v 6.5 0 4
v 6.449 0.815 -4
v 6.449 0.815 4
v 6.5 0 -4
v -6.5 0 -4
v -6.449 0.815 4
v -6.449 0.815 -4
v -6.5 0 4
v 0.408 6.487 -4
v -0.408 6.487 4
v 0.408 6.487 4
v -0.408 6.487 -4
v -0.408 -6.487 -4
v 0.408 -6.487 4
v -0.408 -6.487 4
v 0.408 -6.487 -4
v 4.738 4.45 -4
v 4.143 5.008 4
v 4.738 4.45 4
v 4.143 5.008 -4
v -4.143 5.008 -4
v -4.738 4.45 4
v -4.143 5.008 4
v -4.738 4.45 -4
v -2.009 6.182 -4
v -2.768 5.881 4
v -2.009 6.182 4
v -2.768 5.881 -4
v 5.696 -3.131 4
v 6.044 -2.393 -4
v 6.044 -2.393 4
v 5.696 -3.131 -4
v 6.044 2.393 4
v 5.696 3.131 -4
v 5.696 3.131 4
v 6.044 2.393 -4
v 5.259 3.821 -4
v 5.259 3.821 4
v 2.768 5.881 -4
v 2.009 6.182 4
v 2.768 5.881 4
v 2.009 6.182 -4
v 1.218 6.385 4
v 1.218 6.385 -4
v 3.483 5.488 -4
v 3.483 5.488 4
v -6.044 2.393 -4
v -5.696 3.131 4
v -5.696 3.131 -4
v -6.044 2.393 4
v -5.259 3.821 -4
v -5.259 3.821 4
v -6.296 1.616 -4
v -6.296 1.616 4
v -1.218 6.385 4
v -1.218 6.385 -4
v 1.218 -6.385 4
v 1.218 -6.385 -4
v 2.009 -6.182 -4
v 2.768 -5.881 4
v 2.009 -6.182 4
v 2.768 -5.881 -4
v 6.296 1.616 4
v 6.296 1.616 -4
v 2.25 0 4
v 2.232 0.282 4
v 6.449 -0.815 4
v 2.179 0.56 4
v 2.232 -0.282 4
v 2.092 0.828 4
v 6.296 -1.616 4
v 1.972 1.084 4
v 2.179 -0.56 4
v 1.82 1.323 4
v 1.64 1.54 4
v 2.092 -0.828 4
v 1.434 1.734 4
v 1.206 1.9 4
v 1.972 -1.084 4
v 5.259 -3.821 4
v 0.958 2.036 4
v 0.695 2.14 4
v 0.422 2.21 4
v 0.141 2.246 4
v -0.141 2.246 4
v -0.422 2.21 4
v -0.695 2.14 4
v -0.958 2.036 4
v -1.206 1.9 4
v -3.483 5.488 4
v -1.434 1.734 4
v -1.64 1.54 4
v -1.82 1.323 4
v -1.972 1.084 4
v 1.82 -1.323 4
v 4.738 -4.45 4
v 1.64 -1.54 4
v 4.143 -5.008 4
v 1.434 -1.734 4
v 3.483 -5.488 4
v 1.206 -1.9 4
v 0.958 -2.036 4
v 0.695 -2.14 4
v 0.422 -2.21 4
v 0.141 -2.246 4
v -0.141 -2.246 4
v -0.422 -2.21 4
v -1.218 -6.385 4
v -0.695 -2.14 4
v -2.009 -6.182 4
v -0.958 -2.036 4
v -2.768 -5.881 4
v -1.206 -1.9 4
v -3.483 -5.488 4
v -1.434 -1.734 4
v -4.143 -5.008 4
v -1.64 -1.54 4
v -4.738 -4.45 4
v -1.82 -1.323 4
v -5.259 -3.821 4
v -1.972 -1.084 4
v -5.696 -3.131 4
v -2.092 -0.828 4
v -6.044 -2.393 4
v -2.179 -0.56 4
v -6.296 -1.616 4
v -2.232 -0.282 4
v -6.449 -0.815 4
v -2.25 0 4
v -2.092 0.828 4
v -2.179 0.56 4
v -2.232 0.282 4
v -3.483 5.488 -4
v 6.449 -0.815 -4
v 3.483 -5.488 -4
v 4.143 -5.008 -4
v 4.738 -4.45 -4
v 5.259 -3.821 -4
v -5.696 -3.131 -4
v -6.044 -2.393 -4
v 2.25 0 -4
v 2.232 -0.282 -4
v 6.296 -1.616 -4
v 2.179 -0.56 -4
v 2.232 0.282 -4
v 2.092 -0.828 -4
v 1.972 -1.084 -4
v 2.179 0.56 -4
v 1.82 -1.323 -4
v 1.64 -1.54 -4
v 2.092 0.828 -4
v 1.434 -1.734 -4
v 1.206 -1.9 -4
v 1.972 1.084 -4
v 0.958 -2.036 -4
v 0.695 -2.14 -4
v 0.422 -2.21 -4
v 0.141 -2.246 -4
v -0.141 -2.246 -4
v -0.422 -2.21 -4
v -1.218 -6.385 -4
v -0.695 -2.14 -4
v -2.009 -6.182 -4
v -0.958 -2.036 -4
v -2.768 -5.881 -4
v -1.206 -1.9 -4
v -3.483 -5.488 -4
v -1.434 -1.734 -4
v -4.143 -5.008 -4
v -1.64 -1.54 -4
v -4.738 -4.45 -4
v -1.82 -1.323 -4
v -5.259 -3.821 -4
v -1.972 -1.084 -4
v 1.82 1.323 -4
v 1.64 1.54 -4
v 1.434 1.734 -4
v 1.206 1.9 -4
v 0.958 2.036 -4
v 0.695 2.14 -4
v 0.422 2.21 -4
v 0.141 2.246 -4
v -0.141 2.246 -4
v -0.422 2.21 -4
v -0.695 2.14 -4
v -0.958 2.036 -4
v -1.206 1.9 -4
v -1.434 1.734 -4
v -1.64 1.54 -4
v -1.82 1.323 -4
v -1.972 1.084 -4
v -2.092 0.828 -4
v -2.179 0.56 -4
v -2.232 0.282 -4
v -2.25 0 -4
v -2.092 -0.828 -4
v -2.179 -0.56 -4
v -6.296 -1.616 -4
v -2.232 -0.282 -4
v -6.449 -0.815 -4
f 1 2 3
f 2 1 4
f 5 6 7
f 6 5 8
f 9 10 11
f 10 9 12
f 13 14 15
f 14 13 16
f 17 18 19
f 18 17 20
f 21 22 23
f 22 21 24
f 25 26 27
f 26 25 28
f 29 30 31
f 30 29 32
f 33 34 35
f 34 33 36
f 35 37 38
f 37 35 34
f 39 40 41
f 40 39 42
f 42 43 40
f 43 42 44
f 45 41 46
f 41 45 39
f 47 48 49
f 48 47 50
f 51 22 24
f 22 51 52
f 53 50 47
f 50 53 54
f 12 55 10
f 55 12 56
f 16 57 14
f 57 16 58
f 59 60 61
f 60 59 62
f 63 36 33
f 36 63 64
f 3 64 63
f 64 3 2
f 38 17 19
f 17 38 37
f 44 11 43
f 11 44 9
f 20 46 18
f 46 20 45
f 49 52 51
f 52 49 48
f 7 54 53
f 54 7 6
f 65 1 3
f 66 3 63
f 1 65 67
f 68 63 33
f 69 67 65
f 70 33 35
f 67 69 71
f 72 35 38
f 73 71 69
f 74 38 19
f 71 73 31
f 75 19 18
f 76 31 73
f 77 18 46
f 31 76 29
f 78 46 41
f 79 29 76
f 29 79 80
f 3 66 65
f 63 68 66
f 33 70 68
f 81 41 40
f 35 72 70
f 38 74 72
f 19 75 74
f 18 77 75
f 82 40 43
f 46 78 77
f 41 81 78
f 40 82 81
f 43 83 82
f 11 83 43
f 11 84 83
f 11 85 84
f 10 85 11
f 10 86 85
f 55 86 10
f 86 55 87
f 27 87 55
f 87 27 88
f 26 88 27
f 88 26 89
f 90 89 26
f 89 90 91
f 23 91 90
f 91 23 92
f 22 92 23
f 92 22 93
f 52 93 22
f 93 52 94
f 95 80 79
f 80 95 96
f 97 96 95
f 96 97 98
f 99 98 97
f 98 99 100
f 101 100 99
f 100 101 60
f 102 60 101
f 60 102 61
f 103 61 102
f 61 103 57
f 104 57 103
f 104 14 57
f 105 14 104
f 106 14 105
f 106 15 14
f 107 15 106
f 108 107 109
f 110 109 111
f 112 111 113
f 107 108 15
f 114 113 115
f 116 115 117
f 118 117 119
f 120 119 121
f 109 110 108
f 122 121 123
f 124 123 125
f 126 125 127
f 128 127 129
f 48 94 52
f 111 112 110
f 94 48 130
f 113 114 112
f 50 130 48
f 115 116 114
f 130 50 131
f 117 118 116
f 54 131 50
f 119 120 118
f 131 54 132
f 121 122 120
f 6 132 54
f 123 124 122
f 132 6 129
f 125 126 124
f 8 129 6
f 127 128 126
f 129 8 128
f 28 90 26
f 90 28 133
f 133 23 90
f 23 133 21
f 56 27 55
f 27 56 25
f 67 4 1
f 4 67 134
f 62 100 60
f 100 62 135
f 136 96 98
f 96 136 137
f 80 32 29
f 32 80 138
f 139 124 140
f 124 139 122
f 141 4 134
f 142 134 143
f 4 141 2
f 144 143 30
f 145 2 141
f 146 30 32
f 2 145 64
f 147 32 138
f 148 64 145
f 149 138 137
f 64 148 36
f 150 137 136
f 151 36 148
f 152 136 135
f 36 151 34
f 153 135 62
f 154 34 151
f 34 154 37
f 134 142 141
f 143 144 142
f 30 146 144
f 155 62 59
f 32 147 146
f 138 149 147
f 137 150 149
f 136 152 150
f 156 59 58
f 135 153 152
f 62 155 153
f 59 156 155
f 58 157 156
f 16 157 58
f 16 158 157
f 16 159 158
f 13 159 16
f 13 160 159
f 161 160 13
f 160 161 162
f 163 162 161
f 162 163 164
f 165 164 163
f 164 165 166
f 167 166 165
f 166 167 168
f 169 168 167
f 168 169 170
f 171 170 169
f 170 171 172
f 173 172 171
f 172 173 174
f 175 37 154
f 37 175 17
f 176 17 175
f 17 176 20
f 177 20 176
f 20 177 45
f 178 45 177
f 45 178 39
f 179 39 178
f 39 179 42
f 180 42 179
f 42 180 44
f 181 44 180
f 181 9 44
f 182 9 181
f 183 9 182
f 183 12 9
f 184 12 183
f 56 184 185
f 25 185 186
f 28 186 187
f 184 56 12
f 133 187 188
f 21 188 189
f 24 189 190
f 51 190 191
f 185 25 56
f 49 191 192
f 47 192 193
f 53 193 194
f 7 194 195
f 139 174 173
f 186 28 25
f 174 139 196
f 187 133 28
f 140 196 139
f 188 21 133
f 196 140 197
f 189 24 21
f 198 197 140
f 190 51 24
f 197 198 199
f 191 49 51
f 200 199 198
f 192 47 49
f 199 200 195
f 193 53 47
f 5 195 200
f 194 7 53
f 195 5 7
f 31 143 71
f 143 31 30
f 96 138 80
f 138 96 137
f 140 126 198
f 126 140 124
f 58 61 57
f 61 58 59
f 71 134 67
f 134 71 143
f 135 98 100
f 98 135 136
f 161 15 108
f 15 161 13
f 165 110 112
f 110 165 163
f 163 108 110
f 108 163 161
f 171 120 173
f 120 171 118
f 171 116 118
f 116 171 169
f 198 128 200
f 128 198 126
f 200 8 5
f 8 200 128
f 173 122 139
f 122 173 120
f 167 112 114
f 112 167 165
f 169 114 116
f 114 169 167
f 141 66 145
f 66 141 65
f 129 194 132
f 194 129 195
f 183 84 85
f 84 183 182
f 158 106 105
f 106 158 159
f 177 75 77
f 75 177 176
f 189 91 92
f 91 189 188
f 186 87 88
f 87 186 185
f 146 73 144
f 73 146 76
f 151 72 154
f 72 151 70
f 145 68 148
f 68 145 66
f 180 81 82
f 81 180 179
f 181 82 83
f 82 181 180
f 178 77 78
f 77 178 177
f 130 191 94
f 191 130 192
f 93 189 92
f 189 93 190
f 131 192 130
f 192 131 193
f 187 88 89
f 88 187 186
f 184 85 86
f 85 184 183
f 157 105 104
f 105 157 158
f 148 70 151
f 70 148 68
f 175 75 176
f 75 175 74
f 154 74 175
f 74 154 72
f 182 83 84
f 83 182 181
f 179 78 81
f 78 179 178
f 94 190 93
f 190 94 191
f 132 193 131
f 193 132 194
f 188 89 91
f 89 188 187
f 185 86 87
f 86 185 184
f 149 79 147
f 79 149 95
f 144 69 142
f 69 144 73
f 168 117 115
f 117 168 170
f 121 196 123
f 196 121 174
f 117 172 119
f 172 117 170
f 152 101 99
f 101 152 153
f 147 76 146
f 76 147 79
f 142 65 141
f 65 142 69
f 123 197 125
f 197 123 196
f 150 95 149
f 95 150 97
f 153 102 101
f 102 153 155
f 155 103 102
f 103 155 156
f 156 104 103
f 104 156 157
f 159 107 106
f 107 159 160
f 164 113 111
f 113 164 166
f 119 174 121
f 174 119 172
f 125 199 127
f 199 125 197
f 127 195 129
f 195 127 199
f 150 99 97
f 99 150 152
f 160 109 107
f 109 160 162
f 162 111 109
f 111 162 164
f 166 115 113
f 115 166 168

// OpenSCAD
$fn = 50;


difference() {
	union() {
		translate(v = [0, 0, -4.0000000000]) {
			cylinder(h = 8, r = 6.5000000000);
		}
	}
	union() {
		translate(v = [0, 0, -100.0000000000]) {
			cylinder(h = 200, r = 2.2500000000);
		}
	}
}
